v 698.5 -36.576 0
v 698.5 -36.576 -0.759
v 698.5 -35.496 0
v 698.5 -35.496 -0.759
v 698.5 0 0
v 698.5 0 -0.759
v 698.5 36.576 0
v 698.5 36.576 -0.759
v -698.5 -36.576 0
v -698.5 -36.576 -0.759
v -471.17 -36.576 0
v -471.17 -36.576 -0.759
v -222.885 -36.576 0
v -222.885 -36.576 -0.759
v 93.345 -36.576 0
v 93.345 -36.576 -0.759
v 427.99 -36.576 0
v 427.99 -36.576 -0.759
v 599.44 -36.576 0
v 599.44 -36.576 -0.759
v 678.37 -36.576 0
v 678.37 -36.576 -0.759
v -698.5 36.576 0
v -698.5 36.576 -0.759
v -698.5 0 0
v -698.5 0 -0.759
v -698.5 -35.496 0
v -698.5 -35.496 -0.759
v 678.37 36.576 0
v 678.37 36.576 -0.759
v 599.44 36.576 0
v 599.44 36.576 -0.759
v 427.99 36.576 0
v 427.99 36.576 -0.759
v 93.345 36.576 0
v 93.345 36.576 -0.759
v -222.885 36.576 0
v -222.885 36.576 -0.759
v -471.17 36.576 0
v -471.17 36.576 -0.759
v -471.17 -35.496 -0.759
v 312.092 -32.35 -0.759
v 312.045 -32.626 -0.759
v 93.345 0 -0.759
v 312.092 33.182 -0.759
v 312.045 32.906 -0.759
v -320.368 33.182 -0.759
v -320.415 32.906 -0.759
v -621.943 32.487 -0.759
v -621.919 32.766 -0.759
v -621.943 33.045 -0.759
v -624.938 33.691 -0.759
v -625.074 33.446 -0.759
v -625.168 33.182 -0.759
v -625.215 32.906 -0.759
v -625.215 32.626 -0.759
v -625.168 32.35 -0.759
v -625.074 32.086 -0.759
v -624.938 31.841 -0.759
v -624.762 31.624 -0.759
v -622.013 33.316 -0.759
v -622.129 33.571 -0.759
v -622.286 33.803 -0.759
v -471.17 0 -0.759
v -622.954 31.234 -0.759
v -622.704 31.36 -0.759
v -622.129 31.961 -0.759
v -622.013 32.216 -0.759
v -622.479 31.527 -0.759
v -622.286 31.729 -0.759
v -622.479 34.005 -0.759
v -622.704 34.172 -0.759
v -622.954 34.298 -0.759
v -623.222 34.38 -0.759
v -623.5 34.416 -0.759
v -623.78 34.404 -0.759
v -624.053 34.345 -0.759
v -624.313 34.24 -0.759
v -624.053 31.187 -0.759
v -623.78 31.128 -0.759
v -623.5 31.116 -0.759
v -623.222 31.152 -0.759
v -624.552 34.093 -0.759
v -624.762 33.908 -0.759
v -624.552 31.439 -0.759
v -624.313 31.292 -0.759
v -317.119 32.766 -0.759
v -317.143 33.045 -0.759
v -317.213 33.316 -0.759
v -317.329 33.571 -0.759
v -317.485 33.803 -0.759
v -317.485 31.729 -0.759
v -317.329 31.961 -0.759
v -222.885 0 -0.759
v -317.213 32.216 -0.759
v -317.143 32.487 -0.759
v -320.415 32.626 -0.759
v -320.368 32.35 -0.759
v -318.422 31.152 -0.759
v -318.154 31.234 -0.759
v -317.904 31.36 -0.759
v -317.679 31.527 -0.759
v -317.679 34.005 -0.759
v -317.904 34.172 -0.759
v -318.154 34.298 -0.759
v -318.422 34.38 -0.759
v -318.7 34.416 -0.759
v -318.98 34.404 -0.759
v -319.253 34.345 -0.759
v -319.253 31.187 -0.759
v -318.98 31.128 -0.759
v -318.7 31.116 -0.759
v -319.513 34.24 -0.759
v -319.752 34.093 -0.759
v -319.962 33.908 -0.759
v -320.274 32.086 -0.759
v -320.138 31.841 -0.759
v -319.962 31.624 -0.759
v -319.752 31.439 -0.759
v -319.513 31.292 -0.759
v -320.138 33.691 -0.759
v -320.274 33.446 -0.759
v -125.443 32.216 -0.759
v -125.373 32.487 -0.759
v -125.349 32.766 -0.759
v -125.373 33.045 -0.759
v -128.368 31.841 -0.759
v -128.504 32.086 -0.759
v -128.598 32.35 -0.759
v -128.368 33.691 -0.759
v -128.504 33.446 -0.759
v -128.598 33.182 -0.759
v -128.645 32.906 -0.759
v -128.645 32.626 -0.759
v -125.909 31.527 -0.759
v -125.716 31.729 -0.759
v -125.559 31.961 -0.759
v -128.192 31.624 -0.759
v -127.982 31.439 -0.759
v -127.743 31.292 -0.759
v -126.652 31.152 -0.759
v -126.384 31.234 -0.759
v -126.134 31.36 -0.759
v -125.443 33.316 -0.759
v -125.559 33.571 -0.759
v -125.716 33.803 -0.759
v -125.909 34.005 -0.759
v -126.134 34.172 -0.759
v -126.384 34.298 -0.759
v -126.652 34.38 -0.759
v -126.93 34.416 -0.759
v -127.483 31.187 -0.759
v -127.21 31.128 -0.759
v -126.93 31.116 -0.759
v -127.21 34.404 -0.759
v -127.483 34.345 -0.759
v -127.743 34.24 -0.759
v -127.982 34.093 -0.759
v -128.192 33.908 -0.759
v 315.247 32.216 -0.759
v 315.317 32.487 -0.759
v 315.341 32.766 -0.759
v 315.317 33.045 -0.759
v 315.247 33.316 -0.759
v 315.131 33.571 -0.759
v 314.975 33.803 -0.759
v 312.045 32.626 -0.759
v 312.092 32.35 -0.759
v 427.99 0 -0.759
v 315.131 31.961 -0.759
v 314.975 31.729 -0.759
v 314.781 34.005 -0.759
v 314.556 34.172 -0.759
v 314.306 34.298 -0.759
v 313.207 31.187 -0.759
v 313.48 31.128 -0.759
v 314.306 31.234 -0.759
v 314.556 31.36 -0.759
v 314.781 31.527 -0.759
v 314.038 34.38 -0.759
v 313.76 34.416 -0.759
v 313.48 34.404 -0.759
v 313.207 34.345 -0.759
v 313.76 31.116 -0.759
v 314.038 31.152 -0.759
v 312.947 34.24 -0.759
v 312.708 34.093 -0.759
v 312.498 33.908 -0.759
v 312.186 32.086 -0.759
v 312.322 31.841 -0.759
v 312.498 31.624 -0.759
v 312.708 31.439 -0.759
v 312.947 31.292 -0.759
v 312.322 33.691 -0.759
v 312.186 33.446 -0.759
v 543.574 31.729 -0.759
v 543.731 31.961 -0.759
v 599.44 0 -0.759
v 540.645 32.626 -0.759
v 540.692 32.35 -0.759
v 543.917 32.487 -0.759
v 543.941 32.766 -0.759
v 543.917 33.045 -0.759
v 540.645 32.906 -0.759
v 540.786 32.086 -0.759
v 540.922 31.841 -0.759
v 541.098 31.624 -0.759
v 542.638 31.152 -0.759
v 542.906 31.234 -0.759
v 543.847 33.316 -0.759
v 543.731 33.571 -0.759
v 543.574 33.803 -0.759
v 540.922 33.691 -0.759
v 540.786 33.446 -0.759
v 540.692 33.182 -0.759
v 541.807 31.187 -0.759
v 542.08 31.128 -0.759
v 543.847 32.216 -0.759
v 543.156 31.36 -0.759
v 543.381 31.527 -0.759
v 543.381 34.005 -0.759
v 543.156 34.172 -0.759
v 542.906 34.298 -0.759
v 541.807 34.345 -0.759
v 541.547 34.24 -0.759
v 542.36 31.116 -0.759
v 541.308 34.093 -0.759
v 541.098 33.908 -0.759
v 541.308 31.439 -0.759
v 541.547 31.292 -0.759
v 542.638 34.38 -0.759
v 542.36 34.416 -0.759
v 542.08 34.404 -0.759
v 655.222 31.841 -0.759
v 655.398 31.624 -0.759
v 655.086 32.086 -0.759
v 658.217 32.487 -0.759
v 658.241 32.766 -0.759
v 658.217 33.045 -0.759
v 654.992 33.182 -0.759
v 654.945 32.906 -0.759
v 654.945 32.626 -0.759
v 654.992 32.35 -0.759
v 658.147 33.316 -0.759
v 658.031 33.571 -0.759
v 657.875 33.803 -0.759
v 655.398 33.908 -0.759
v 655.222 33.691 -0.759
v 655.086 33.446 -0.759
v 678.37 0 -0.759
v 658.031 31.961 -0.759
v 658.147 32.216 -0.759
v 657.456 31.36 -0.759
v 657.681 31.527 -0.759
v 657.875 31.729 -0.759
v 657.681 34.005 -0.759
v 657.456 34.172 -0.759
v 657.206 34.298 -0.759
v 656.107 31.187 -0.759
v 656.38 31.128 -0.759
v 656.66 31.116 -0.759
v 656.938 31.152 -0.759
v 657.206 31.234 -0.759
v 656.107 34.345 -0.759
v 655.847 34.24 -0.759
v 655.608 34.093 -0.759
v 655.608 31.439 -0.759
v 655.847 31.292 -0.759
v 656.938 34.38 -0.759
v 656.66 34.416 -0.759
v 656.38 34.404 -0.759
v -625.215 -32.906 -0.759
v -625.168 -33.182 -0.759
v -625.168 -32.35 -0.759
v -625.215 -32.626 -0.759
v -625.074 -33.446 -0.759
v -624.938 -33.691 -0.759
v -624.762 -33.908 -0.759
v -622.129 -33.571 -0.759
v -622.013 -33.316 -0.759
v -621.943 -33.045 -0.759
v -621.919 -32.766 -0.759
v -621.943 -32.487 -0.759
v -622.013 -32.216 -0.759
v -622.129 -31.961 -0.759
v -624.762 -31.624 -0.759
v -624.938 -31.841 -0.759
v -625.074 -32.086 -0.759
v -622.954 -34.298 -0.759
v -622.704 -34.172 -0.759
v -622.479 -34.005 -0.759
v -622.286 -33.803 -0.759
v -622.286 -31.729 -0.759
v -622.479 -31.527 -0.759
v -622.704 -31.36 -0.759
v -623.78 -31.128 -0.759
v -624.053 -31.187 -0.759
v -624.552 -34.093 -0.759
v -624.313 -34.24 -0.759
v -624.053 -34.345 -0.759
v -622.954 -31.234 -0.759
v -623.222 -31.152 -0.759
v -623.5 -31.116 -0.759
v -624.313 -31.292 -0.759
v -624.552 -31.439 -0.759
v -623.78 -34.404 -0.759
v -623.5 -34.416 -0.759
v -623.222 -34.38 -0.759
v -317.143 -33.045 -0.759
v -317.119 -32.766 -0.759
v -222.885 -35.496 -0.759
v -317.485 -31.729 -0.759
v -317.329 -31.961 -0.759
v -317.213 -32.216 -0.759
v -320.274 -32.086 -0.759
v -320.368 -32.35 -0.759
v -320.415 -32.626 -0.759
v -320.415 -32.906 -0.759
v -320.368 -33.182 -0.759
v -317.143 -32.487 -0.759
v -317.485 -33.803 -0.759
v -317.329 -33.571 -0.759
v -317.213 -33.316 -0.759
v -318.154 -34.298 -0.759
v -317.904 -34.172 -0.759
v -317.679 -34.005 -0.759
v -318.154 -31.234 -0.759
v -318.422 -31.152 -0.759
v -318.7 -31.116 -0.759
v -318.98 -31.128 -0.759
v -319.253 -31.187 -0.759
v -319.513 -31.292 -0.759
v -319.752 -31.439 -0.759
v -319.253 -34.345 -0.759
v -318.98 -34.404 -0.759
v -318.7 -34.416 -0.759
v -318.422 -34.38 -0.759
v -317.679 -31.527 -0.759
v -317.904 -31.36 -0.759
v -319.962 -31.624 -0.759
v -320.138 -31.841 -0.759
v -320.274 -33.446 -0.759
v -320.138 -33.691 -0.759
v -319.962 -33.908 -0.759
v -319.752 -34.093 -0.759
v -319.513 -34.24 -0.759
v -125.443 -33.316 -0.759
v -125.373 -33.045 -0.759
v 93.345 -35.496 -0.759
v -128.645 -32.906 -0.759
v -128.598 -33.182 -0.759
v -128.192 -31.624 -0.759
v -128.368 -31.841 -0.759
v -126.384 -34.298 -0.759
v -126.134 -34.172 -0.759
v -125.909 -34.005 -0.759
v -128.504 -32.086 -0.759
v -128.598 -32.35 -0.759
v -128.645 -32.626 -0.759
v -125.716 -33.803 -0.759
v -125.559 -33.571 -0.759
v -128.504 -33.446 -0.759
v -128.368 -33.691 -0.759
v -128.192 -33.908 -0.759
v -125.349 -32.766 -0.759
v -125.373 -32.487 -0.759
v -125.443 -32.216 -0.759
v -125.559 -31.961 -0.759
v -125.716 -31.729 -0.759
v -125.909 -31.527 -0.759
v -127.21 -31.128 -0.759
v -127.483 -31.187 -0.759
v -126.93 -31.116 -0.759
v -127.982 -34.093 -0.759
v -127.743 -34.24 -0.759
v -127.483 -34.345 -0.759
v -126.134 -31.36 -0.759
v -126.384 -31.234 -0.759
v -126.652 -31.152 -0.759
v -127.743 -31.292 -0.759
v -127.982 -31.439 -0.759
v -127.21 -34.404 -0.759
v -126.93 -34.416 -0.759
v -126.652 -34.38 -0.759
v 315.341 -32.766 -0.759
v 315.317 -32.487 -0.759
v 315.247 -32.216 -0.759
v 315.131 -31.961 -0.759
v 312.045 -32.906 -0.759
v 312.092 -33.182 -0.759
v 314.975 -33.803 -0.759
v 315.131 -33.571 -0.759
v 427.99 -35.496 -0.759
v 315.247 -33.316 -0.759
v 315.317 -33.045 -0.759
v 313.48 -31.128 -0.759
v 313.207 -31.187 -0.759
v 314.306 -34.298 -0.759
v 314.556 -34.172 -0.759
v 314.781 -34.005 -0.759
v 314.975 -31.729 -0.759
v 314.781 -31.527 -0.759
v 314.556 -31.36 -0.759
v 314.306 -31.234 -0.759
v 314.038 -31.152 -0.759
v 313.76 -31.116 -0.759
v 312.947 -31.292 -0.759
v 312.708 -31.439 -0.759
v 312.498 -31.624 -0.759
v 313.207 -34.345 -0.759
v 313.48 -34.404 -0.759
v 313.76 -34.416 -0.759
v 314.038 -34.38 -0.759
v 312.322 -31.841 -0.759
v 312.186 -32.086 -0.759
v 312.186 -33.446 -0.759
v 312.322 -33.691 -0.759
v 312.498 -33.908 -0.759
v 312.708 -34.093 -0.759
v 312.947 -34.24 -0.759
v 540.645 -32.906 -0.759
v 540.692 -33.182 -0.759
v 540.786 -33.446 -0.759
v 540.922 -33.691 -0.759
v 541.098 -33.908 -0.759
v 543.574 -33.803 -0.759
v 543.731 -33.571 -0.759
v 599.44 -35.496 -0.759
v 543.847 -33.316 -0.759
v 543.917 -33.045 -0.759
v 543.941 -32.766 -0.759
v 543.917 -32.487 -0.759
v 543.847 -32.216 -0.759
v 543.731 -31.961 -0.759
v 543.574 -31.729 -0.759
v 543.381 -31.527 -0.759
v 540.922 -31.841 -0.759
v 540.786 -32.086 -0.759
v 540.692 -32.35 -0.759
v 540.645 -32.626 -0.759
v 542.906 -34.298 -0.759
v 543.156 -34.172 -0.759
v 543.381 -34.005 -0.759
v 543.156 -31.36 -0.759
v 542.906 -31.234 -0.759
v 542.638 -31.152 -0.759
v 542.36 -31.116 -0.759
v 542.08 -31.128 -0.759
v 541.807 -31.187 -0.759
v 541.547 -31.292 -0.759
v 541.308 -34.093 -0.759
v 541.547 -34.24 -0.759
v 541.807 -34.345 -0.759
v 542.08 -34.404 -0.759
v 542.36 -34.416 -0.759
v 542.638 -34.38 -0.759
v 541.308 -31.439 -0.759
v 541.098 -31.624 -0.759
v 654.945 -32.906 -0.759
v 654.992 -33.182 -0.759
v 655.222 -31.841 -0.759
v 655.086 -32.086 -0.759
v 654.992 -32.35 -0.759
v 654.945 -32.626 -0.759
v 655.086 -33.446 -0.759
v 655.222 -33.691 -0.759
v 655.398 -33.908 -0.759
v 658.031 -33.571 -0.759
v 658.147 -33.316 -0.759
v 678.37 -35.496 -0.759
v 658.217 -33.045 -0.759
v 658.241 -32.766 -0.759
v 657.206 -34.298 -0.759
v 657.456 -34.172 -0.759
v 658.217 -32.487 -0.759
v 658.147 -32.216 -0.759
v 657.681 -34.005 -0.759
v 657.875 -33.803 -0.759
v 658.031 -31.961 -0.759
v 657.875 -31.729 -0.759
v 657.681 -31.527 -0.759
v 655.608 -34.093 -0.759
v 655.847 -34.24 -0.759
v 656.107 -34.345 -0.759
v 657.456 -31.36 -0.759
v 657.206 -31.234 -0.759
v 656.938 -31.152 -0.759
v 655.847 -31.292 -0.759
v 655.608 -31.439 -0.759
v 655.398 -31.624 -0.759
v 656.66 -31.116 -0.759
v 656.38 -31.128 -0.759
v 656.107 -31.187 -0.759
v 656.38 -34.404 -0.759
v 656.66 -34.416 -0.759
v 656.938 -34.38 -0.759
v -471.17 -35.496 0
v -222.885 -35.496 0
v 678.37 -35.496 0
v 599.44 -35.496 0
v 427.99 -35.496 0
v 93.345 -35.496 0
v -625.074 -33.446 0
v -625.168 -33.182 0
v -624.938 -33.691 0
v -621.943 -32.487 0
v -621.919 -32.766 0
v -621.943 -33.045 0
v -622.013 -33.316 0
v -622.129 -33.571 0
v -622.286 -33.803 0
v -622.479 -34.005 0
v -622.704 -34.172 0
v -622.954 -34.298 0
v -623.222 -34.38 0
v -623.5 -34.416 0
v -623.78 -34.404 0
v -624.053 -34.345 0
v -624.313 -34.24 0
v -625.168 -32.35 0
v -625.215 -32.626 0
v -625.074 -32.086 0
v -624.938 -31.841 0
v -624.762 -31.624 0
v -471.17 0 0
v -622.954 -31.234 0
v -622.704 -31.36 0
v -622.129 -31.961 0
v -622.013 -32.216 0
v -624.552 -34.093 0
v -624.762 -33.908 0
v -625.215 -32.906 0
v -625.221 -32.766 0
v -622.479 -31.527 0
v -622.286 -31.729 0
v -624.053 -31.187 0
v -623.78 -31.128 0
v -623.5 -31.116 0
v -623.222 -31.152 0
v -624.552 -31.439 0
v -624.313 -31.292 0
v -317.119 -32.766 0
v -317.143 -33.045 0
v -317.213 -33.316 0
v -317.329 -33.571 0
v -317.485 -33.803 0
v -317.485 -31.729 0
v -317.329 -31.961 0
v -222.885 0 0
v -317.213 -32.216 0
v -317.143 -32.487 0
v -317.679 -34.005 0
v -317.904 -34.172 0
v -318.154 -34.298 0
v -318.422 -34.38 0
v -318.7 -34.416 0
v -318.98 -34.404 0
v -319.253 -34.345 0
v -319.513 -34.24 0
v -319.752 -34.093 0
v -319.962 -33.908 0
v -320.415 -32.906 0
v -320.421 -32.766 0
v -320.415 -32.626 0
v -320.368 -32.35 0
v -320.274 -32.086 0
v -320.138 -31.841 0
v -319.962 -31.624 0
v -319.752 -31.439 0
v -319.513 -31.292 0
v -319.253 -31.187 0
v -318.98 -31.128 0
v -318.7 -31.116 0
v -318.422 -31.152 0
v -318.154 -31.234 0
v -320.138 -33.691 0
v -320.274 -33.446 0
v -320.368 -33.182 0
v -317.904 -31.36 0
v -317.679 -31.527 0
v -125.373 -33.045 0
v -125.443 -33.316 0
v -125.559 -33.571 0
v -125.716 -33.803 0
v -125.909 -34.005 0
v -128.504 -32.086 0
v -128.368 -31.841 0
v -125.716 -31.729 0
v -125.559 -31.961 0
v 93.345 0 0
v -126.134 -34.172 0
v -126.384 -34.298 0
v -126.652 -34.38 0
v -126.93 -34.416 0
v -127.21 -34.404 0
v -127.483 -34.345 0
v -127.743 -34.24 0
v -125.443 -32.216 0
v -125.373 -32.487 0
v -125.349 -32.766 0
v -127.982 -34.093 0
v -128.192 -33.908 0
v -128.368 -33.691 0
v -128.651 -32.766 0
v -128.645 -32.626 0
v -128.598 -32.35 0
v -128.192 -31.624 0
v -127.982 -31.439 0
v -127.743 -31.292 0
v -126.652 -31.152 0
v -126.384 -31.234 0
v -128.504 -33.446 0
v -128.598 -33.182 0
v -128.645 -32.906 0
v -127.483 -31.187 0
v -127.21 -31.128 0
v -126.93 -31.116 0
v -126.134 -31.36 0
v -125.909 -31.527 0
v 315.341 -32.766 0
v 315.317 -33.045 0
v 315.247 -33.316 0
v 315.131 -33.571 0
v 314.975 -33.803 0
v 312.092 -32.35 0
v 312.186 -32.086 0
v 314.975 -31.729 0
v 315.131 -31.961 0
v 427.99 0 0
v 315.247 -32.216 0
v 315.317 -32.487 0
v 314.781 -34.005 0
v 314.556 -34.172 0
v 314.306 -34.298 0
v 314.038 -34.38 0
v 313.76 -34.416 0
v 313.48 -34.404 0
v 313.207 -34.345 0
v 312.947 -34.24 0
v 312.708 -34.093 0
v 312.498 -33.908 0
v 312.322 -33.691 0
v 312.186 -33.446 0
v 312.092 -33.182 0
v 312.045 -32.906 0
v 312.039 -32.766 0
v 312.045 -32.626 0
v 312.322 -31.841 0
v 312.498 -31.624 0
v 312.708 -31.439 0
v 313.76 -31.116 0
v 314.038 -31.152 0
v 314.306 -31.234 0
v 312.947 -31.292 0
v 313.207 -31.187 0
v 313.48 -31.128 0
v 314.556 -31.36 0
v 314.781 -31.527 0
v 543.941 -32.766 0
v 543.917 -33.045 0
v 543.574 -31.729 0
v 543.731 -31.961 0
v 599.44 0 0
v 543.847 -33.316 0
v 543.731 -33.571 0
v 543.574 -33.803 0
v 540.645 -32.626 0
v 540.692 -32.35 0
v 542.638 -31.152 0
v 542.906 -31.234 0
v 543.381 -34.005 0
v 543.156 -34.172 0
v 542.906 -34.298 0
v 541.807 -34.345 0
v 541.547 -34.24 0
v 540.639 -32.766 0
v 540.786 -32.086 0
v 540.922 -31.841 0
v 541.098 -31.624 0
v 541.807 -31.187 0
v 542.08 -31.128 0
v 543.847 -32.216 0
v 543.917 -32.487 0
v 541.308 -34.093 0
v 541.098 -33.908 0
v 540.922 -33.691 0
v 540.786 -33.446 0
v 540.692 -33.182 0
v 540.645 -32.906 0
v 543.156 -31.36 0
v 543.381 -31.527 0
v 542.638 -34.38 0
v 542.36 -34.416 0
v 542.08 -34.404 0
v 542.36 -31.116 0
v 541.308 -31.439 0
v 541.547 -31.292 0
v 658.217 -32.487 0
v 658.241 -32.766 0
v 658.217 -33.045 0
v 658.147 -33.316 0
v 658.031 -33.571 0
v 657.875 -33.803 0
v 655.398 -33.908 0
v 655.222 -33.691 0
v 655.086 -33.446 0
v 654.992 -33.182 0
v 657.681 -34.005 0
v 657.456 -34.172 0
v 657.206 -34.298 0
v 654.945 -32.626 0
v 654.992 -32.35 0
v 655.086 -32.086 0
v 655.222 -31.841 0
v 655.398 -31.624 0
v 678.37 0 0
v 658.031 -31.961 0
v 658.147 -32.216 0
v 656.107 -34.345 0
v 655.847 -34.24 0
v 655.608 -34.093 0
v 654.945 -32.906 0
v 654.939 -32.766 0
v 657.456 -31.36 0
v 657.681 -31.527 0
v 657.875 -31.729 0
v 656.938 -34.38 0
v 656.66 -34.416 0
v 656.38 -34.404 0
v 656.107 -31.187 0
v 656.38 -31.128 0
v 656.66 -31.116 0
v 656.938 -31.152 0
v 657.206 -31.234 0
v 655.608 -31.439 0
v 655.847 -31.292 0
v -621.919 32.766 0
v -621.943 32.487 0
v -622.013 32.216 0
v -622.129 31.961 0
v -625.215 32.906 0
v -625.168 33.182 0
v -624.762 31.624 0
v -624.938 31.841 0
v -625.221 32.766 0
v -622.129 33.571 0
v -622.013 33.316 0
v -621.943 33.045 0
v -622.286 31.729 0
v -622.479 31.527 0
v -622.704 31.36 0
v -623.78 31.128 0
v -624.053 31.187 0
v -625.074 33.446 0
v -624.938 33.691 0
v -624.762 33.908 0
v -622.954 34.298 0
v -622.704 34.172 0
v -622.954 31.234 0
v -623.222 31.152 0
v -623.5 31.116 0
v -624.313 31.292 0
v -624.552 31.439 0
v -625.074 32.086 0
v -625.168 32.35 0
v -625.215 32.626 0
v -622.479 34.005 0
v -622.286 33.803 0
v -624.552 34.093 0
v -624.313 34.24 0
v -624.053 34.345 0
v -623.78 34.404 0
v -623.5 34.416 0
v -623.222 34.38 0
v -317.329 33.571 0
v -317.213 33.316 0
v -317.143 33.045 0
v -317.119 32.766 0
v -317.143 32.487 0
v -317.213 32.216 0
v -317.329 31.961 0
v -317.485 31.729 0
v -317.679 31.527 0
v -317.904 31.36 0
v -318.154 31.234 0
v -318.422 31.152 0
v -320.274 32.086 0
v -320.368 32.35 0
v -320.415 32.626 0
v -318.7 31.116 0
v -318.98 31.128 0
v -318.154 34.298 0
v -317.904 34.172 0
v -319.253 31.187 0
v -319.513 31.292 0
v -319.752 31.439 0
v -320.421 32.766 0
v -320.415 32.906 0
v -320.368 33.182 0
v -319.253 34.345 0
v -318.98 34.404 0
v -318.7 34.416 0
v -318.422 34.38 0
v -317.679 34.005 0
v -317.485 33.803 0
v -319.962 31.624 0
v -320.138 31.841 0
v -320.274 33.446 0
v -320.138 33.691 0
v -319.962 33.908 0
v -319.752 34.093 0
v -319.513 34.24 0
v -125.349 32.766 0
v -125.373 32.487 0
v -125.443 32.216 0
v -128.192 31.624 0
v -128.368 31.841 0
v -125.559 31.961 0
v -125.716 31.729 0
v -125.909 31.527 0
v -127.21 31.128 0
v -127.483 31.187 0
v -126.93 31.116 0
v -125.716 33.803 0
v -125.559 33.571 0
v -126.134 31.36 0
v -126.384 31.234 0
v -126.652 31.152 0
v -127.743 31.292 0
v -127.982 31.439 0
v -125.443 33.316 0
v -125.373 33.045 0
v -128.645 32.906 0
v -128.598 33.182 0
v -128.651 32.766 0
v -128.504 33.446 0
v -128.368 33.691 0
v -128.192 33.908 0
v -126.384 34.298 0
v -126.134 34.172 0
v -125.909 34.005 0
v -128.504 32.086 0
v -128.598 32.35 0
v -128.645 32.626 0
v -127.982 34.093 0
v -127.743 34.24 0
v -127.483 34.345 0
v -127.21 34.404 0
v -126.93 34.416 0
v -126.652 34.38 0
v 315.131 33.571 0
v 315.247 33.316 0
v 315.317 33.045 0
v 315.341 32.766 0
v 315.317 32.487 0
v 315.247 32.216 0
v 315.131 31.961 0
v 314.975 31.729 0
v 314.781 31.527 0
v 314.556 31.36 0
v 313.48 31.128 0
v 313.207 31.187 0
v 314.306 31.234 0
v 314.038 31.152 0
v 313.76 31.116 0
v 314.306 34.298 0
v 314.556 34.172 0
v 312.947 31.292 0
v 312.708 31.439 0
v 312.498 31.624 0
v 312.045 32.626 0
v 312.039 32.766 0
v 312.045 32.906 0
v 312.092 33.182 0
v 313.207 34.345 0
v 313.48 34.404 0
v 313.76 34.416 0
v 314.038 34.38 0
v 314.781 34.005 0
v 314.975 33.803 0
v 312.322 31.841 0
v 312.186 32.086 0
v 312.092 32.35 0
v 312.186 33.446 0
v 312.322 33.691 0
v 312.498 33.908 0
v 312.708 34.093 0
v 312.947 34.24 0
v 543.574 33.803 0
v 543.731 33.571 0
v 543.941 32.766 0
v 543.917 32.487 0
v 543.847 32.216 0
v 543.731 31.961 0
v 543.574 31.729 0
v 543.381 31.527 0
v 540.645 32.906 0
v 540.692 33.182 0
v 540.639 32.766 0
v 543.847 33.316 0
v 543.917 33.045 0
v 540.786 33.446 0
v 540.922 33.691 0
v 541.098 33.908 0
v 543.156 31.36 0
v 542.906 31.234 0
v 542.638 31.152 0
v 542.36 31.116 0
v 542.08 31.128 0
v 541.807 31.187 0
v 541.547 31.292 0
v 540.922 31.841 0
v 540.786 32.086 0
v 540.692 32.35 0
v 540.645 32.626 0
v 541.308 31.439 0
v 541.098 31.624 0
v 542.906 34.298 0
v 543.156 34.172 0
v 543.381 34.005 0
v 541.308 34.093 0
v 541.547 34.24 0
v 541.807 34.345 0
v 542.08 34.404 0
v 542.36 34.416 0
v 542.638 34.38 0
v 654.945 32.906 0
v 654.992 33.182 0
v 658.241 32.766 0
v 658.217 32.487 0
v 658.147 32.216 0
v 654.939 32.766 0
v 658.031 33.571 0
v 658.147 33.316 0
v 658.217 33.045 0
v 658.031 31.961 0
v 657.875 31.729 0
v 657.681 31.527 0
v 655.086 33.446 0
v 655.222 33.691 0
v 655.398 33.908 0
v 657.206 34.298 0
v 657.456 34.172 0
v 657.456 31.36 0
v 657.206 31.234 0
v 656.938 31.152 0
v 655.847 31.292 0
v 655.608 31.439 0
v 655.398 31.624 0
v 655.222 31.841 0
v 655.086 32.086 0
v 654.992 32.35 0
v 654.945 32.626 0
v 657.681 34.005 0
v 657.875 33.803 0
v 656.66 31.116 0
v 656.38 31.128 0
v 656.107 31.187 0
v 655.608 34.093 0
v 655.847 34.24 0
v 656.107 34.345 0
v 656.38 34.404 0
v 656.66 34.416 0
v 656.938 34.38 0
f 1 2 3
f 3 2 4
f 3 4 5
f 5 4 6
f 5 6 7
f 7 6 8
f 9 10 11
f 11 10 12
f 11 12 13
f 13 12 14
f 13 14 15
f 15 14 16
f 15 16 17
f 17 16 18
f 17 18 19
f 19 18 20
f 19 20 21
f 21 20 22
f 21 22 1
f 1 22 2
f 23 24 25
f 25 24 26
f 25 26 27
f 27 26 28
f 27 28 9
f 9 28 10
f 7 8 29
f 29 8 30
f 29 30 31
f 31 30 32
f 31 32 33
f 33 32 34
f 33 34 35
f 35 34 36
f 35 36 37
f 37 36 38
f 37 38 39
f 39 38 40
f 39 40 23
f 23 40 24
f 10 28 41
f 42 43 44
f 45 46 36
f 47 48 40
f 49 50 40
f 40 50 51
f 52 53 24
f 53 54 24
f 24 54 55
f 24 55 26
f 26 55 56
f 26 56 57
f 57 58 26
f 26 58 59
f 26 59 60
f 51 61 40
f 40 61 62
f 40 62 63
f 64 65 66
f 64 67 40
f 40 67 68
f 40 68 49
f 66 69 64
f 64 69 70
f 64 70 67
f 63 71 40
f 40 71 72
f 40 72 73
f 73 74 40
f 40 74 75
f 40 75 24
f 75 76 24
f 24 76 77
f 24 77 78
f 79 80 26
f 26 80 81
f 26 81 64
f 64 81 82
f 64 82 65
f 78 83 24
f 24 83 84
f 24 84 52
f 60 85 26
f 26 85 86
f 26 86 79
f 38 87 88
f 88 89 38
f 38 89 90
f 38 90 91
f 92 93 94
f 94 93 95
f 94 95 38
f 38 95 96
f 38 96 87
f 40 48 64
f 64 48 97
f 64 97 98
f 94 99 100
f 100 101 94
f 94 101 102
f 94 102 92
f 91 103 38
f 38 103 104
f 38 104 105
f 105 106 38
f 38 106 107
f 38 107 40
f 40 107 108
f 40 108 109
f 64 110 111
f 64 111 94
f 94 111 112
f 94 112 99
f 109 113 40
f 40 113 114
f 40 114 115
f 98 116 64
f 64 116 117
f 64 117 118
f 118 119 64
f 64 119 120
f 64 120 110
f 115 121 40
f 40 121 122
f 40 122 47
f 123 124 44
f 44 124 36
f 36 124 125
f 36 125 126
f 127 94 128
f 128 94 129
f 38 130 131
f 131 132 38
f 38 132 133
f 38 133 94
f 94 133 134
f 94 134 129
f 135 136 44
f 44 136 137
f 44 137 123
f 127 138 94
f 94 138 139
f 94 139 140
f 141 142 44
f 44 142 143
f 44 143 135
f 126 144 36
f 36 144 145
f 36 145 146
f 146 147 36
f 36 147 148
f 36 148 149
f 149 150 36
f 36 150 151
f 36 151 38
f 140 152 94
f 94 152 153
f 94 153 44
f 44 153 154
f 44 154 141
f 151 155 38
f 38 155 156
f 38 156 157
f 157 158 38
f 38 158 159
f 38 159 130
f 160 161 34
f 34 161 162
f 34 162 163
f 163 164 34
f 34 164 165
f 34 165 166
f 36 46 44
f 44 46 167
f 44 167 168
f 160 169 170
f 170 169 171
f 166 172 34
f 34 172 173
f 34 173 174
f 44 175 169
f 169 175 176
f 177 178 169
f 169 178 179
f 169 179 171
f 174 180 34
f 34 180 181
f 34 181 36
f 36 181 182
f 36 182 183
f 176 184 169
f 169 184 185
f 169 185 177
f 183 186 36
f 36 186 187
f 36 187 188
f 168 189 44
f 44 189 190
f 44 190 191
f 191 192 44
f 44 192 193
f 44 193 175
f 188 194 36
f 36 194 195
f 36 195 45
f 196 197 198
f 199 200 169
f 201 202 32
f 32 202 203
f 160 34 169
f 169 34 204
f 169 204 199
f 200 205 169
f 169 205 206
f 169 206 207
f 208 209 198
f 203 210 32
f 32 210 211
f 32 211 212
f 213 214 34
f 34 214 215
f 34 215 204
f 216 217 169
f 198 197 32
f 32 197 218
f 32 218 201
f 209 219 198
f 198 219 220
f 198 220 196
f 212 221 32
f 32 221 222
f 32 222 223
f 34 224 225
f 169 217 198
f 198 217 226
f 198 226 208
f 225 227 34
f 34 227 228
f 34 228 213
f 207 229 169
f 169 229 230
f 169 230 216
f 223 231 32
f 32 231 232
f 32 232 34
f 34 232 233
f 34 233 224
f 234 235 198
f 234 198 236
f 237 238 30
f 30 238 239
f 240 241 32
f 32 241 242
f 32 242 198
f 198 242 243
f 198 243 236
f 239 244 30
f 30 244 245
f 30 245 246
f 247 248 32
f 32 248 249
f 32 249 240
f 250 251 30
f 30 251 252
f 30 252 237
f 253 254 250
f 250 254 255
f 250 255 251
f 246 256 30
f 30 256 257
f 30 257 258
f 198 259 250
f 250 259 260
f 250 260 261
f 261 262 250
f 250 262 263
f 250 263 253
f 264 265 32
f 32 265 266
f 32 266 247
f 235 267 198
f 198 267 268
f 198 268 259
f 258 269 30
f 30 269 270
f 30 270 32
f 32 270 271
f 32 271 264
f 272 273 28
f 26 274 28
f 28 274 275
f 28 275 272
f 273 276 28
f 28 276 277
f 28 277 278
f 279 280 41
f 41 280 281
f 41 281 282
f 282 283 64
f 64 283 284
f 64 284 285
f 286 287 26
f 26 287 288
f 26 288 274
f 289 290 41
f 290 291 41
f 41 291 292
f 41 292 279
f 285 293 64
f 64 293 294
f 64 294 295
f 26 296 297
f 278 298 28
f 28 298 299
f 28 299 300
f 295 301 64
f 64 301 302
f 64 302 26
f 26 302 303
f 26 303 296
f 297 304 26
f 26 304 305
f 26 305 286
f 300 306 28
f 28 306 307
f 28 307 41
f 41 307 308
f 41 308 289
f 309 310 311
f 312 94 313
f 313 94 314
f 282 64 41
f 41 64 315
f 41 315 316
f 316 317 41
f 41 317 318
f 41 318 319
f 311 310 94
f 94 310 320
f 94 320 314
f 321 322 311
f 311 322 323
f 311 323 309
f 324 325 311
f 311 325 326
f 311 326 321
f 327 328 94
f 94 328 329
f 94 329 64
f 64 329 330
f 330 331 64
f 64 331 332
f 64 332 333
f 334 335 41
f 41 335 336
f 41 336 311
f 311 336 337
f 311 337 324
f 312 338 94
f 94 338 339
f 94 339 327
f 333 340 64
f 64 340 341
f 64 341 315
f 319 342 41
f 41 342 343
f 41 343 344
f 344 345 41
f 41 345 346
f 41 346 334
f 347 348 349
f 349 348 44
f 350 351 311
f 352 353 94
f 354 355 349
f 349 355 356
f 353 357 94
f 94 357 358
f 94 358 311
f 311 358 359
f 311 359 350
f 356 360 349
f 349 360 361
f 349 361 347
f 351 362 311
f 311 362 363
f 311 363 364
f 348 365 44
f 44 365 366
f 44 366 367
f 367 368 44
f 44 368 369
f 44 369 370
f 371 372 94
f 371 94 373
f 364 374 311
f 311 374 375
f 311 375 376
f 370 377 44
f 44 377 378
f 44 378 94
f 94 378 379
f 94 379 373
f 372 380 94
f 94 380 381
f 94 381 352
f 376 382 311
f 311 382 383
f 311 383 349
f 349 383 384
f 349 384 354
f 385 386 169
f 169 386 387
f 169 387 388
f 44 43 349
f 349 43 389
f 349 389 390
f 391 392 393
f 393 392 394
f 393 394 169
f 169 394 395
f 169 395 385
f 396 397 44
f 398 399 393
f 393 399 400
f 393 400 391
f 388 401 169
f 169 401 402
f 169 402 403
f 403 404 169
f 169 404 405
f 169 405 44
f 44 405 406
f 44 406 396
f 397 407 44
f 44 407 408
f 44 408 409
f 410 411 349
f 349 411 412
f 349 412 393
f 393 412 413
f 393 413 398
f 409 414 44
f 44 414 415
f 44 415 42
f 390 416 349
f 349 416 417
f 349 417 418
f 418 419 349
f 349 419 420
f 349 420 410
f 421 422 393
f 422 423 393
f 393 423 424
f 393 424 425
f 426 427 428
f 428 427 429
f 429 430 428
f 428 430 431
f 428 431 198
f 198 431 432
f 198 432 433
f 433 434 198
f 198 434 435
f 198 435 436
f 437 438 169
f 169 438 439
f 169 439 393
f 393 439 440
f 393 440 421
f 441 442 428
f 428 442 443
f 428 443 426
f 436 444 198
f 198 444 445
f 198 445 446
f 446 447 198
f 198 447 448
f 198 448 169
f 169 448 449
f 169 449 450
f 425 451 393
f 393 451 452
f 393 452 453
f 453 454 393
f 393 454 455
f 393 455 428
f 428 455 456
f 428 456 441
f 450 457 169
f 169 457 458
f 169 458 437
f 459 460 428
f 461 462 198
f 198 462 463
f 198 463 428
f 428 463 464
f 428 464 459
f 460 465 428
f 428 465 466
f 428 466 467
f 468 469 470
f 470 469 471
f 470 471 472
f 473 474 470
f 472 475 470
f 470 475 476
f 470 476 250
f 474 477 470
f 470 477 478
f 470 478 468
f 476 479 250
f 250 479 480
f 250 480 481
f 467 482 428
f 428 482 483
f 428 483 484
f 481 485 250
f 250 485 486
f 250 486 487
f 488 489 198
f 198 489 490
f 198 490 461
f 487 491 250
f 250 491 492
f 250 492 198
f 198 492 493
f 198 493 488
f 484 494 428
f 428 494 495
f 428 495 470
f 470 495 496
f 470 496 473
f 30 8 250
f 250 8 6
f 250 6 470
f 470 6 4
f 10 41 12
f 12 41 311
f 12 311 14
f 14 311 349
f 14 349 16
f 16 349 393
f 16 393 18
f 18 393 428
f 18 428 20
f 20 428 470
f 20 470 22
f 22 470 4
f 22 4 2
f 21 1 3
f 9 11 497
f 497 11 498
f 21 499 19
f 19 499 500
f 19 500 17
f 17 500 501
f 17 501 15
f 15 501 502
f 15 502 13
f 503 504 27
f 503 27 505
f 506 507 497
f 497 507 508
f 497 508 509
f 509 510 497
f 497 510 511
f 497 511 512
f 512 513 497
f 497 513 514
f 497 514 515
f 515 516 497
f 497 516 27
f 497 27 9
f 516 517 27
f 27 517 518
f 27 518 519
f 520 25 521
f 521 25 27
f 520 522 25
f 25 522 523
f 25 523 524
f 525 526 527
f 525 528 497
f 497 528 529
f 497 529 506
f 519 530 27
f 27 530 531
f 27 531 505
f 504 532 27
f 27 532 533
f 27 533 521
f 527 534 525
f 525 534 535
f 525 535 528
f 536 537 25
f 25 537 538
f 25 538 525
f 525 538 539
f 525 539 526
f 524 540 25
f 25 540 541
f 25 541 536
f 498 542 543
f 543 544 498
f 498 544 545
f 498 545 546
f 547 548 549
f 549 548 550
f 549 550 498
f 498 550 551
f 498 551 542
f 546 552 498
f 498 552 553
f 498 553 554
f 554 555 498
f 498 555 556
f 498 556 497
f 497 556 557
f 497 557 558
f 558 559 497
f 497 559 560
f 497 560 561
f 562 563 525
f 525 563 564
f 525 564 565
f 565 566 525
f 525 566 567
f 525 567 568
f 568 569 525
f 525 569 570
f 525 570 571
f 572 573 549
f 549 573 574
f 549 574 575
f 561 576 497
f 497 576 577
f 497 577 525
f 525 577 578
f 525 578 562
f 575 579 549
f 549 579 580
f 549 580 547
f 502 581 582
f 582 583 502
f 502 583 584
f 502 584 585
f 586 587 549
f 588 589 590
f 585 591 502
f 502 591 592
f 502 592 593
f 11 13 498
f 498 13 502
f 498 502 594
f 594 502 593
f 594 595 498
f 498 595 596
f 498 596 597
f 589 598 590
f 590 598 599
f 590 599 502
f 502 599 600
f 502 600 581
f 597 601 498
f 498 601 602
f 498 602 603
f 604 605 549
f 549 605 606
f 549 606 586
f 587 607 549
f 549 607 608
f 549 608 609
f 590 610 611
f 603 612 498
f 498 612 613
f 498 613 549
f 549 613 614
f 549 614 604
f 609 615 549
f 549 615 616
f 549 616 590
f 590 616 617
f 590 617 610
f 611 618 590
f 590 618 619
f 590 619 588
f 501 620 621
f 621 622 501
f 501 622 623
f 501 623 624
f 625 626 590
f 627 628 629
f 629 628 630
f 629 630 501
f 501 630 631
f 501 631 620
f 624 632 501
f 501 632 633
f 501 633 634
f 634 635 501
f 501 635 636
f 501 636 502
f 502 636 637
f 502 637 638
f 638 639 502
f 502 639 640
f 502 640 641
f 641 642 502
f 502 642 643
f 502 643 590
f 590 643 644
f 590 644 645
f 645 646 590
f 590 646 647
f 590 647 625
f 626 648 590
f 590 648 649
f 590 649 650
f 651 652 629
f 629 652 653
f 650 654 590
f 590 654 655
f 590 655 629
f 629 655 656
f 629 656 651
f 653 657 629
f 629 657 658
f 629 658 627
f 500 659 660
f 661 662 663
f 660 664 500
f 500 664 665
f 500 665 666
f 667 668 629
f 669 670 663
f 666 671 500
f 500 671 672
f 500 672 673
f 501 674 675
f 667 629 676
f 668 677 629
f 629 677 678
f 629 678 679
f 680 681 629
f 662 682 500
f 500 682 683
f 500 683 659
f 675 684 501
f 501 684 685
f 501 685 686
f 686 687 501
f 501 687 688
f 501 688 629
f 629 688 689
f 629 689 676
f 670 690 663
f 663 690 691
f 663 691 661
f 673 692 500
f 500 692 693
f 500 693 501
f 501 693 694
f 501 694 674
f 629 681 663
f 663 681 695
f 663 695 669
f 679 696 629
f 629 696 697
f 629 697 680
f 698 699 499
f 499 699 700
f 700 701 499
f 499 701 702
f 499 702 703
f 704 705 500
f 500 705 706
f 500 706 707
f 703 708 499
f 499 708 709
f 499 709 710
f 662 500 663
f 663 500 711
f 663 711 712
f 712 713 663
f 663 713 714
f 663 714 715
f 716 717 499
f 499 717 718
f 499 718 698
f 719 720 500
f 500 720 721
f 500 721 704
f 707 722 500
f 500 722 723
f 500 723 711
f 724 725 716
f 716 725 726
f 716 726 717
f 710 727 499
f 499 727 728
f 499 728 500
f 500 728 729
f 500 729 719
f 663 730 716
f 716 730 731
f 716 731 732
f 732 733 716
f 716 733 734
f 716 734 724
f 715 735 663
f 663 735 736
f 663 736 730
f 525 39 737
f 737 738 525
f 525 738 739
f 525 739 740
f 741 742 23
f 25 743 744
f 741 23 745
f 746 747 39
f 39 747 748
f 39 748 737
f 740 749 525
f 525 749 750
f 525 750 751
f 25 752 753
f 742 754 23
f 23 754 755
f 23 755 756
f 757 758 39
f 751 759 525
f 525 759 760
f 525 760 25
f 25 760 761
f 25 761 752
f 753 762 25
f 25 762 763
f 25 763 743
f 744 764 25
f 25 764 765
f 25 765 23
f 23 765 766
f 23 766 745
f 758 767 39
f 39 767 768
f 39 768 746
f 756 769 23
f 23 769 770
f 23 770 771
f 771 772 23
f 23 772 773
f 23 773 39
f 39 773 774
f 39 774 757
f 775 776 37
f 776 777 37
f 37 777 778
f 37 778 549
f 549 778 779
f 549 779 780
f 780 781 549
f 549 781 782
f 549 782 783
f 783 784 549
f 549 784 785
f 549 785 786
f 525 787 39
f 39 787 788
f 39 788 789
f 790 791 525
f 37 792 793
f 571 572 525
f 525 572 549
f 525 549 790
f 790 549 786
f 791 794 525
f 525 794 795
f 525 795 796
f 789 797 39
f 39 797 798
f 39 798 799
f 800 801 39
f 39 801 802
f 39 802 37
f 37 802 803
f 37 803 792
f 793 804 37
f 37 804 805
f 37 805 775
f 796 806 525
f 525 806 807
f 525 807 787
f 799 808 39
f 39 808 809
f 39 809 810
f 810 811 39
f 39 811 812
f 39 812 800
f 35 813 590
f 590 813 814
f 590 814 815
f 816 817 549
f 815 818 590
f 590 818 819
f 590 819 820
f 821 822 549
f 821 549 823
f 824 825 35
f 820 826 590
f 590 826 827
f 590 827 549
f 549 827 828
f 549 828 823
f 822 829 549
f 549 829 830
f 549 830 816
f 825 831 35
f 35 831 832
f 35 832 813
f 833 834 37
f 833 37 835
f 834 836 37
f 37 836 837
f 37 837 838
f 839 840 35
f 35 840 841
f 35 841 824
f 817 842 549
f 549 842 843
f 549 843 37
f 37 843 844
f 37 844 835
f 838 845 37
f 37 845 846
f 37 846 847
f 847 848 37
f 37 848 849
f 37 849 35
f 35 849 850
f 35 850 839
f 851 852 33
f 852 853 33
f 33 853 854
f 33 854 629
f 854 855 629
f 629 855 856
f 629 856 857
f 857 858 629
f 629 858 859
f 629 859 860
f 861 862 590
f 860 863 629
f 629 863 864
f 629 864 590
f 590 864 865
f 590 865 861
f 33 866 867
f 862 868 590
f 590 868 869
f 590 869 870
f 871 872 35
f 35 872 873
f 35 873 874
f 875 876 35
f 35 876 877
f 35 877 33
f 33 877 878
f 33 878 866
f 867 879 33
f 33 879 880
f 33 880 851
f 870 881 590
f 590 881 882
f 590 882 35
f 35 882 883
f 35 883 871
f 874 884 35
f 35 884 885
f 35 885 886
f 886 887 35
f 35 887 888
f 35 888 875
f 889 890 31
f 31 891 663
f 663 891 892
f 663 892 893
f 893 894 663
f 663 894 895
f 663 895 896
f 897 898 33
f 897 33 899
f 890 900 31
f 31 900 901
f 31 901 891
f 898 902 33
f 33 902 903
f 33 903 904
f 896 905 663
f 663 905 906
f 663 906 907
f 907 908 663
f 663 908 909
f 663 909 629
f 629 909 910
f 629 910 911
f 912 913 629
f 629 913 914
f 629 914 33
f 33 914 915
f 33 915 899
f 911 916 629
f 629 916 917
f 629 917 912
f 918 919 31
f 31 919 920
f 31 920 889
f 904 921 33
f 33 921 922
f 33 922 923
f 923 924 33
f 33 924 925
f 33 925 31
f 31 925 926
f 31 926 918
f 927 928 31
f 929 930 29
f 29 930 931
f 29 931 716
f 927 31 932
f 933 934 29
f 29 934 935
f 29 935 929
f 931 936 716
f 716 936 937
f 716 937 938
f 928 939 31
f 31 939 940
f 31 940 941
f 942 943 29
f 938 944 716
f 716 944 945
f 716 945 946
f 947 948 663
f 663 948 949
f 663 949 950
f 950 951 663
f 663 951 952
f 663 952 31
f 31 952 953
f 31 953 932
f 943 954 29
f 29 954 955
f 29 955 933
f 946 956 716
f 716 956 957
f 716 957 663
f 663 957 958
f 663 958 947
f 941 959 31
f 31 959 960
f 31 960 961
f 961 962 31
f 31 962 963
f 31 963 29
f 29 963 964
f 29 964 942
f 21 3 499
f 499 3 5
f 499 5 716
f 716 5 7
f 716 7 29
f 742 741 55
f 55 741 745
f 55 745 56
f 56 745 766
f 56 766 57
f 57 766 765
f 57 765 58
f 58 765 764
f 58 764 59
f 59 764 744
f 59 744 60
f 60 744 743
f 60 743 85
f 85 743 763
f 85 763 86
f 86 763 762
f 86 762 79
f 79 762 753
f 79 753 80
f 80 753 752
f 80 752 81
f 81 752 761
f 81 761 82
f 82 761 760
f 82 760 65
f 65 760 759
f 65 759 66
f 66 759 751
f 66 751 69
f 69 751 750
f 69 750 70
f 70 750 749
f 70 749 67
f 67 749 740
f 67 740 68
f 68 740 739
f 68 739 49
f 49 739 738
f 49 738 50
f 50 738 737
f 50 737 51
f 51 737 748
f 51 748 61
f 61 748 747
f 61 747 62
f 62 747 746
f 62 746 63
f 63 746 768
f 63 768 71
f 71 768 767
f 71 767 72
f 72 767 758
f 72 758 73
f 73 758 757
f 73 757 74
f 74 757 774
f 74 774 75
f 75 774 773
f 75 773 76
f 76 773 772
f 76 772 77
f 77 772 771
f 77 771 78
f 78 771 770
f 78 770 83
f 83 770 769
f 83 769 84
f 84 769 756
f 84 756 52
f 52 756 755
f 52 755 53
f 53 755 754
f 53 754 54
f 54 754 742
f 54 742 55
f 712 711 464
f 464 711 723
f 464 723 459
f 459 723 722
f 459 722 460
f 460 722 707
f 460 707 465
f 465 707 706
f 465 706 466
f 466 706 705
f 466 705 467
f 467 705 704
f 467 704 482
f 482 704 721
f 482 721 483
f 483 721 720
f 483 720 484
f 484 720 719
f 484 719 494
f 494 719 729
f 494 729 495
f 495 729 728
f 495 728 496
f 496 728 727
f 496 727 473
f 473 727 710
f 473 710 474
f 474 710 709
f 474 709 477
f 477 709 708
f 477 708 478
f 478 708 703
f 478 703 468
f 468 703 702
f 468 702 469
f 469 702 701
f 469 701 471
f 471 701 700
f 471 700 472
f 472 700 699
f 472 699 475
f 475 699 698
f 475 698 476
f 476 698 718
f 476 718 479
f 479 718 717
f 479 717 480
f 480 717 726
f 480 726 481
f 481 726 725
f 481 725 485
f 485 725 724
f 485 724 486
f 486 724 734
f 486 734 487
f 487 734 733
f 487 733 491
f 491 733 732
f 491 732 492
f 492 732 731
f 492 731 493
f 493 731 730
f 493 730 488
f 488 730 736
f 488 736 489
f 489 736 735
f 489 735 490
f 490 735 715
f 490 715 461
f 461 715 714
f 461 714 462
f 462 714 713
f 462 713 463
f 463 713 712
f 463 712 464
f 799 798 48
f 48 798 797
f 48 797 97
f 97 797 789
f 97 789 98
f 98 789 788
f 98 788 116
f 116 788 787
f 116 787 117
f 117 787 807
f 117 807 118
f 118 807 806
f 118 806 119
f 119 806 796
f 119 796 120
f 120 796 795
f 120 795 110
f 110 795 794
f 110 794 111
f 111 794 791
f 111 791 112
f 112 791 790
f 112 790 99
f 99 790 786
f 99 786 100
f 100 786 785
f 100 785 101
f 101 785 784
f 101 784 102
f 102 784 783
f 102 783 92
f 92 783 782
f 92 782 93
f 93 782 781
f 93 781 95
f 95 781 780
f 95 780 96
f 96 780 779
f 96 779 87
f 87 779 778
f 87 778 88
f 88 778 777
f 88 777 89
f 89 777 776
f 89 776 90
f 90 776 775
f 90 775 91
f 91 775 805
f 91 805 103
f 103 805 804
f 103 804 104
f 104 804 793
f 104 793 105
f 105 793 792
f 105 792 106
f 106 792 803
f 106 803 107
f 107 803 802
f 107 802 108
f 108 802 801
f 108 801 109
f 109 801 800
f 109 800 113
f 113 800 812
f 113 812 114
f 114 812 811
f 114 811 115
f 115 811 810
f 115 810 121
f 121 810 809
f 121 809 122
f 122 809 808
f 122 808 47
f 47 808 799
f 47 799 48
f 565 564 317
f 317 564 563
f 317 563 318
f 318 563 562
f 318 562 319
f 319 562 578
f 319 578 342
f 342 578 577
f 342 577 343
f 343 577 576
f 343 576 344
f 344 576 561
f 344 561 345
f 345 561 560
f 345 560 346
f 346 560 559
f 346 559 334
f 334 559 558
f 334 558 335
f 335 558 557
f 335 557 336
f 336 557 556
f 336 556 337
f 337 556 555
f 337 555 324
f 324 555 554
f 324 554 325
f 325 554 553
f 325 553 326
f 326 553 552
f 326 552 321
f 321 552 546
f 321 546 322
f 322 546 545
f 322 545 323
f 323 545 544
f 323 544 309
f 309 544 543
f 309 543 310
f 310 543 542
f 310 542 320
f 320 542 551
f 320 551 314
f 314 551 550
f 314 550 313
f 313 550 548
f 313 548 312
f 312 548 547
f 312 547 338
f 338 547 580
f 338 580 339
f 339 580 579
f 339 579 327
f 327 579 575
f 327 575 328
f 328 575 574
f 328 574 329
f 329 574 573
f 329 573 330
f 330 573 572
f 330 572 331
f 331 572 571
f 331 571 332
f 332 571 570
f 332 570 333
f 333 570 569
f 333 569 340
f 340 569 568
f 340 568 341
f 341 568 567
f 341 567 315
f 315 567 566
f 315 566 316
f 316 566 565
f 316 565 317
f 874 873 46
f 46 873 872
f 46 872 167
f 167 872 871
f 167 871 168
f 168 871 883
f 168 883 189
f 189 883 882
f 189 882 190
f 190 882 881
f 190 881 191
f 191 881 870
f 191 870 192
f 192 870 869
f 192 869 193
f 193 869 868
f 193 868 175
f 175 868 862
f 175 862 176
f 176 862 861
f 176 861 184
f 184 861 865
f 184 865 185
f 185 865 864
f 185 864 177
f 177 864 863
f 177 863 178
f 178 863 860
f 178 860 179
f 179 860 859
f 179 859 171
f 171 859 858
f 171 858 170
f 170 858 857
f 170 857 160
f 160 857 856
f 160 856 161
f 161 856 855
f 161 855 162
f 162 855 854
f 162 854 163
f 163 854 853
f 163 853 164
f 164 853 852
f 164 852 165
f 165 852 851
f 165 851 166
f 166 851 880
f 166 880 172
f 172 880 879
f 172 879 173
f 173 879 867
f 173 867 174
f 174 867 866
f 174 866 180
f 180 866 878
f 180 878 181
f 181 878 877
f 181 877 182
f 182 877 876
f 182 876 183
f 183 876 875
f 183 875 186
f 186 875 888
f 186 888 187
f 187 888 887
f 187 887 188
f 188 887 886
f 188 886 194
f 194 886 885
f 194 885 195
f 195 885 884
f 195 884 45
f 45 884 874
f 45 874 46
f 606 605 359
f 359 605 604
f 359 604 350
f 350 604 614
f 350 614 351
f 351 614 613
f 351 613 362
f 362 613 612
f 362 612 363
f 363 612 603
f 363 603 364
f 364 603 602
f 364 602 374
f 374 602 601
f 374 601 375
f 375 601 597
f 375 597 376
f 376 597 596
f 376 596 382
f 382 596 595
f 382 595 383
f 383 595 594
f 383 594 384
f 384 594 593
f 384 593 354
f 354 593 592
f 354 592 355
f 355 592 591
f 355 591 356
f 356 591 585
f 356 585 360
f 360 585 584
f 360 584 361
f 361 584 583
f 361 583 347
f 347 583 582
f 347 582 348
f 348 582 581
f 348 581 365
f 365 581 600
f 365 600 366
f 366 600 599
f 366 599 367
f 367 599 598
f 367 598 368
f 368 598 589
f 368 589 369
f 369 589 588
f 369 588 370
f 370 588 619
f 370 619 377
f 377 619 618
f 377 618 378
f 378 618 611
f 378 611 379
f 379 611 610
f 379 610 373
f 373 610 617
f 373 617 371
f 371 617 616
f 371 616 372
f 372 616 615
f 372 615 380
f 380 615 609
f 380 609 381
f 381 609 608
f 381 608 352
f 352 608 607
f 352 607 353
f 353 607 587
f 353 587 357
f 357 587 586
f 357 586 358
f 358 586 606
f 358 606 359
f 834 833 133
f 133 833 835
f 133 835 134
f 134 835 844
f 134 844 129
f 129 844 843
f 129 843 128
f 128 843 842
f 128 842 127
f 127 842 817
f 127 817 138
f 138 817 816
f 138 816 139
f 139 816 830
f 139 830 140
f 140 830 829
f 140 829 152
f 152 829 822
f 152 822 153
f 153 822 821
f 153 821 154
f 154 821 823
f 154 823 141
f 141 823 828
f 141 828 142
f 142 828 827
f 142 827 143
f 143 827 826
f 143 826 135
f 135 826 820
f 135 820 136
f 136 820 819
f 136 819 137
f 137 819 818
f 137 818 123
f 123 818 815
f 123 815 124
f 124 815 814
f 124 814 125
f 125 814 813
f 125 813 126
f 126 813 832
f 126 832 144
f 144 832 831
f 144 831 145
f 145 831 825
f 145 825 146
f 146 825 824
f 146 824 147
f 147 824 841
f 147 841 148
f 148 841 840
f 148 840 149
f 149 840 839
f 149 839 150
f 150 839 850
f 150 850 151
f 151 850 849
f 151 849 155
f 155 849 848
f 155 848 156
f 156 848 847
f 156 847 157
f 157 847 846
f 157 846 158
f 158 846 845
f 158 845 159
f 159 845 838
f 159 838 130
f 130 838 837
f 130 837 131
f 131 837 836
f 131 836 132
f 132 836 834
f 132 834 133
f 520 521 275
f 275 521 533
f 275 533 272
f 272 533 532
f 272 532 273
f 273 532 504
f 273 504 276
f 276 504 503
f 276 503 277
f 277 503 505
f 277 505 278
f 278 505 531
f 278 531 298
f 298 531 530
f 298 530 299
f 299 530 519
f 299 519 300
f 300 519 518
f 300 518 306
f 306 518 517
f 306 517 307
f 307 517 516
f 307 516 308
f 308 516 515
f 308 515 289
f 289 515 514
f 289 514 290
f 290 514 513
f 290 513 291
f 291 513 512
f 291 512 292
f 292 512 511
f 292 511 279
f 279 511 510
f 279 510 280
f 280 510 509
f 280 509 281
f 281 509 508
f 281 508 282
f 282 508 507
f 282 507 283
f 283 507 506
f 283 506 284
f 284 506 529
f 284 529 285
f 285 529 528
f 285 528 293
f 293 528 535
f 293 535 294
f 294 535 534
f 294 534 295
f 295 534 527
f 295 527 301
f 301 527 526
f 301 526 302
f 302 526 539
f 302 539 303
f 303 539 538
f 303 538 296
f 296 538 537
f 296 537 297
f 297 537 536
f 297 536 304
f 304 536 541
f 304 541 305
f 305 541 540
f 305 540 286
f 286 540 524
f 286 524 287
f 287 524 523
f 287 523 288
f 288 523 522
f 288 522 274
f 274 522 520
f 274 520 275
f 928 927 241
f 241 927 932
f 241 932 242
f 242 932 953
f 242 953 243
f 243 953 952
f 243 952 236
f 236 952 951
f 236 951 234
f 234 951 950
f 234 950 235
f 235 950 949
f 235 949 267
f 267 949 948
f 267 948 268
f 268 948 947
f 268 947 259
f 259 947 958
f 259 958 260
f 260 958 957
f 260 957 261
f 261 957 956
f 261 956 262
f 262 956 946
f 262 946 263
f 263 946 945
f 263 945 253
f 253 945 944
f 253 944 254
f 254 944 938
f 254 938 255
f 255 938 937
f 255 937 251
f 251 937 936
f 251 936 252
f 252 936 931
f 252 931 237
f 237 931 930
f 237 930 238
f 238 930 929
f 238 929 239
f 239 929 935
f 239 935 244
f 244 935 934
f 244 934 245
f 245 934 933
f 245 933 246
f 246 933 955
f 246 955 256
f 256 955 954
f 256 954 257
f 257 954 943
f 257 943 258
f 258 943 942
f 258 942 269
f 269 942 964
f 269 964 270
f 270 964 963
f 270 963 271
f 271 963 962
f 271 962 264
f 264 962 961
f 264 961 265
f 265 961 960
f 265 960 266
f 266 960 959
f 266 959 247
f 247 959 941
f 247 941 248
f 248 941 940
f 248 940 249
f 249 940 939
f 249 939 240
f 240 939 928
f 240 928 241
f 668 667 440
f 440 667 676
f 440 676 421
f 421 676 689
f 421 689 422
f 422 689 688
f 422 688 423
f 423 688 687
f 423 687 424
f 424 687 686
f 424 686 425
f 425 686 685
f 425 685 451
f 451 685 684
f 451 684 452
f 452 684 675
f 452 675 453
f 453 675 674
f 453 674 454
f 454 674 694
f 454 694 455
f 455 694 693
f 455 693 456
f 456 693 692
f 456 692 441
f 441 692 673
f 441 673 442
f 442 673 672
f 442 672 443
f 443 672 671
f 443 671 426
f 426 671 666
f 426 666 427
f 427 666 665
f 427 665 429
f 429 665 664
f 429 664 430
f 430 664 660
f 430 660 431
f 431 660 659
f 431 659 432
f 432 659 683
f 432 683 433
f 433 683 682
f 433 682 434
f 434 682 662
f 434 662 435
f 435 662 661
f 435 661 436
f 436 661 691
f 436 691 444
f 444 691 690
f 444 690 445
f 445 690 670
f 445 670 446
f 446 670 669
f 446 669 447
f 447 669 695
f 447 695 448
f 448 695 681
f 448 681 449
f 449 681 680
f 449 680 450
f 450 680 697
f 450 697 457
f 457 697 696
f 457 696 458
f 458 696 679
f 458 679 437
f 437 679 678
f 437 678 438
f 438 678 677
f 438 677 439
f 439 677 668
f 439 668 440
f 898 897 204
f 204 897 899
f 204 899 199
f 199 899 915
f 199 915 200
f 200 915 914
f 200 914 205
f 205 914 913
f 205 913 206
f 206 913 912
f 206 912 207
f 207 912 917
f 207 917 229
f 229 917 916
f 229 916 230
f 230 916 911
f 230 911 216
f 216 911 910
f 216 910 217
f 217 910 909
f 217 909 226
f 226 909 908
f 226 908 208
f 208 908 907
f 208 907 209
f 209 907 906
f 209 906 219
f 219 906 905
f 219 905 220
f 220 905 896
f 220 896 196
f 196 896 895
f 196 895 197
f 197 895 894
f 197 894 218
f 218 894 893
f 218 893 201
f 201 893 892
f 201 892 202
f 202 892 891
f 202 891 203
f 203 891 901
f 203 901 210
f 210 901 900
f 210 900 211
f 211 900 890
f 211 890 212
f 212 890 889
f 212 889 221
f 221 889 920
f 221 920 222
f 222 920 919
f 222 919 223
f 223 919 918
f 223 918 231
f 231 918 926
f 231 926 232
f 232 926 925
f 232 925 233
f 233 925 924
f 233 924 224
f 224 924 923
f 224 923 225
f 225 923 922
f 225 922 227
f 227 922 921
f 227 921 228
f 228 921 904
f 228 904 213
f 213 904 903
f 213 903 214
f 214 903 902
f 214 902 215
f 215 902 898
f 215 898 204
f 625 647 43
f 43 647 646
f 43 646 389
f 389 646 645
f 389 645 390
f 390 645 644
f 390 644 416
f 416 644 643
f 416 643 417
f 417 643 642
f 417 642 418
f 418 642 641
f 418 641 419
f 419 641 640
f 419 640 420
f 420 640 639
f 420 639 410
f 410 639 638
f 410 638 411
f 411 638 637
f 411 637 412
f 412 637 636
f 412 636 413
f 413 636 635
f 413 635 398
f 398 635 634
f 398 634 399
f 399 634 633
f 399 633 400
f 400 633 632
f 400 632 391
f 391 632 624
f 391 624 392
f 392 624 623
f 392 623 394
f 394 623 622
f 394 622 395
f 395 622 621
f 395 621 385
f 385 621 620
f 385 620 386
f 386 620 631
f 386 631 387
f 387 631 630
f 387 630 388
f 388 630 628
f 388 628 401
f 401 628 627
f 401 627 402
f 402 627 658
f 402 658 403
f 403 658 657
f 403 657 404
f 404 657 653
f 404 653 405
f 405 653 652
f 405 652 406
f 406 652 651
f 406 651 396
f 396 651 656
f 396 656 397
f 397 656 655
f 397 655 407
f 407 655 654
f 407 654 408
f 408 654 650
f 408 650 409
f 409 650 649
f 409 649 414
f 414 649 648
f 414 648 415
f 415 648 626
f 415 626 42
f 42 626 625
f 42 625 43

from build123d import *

# Parameters (mm, degrees)
SKETCH2_W               = 1397
SKETCH2_H               = 73.152
BASE_FLANGE1_DEPTH      = 0.75946
CUT_EXTRUDE1_DEPTH      = 700.457382944
CUT_EXTRUDE1_DEPTH_BACK = 700.457382944
SKETCH3_R               = 1.651


# Sheet-metal steps are written as plain solids
with BuildPart() as part:
    # Sketch2 → Base-Flange1 (new body)
    with BuildSketch(Plane.XY):
        Rectangle(SKETCH2_W, SKETCH2_H)
    extrude(amount=-BASE_FLANGE1_DEPTH)

    # Sketch3 → Cut-Extrude1 (cut, two sides: drawn at the far end of the back side and taken through both)
    with BuildSketch(Plane.XY.offset(-CUT_EXTRUDE1_DEPTH_BACK)):
        with Locations((-623.57, 32.766)):
            Circle(SKETCH3_R)
        with Locations((-623.57, -32.766)):
            Circle(SKETCH3_R)
        with Locations((-127, 32.766)):
            Circle(SKETCH3_R)
        with Locations((-127, -32.766)):
            Circle(SKETCH3_R)
        with Locations((313.69, 32.766)):
            Circle(SKETCH3_R)
        with Locations((313.69, -32.766)):
            Circle(SKETCH3_R)
        with Locations((542.29, 32.766)):
            Circle(SKETCH3_R)
        with Locations((542.29, -32.766)):
            Circle(SKETCH3_R)
        with Locations((656.59, 32.766)):
            Circle(SKETCH3_R)
        with Locations((656.59, -32.766)):
            Circle(SKETCH3_R)
        with Locations((-318.77, 32.766)):
            Circle(SKETCH3_R)
        with Locations((-318.77, -32.766)):
            Circle(SKETCH3_R)
    extrude(amount=CUT_EXTRUDE1_DEPTH + CUT_EXTRUDE1_DEPTH_BACK, mode=Mode.SUBTRACT)


solid = part.part
